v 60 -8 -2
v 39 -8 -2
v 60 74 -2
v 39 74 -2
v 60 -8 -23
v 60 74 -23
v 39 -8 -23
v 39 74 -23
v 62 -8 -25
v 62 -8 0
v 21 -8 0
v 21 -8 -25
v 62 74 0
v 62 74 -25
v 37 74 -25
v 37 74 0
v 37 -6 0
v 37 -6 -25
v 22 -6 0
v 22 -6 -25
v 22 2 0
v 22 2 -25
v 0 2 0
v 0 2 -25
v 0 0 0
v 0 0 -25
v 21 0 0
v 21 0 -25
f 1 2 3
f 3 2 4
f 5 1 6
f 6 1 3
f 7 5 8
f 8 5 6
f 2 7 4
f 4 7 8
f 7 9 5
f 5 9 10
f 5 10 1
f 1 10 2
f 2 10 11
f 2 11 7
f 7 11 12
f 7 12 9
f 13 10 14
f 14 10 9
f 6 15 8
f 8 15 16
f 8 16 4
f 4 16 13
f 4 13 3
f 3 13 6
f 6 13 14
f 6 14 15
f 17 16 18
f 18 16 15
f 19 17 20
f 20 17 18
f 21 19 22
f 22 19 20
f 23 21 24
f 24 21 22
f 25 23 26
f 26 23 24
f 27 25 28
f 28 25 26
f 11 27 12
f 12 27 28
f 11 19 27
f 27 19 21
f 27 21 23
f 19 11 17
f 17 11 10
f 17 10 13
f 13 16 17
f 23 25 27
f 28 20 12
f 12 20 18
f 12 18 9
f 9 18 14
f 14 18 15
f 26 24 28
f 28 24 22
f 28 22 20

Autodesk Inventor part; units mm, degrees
ref_plane "YZ Plane" through (0, 0, 0) normal (1, 0, 0) x (0, 1, 0)
ref_plane "XZ Plane" through (0, 0, 0) normal (0, 1, 0) x (-1, 0, 0)
ref_plane "XY Plane" through (0, 0, 0) normal (0, 0, 1) x (1, 0, 0)
sketch "Skizze4" plane through (0, 0, 0) normal (0, 0, 1) x (1, 0, 0)
  line L0 (0, 0) -> (0, 2)
  line L1 (0, 2) -> (22, 2)
  line L2 (22, 2) -> (22, -6)
  line L3 (22, -6) -> (37, -6)
  line L4 (37, -6) -> (37, 74)
  line L5 (37, 74) -> (62, 74)
  line L6 (62, 74) -> (62, -8)
  line L7 (62, 74) -> (144, 74) construction
  line L8 (62, -8) -> (21, -8)
  line L9 (21, -8) -> (21, 0)
  line L10 (21, 0) -> (0, 0)
  dimension "d2" = 2
  dimension "d3" = 22
  dimension "d4" = 8
  dimension "d5" = 15
  dimension "d6" = 80
  dimension "d7" = 25
  dimension "d8" = 82
  dimension "d9" = 90
  dimension "d10" = 41
extrude "Extrusion3" add sketch "Skizze4" against normal blind 25
sketch "Skizze7" plane through (37, 74, 0) normal (0, 1, 0) x (1, 0, 0)
  line L0 (2, 2) -> (23, 2)
  line L1 (23, 2) -> (23, 23)
  line L2 (23, 23) -> (2, 23)
  line L3 (2, 23) -> (2, 2)
  point P0 (-37, 0)
  dimension "d19" = 21
  dimension "d20" = 21
extrude "Extrusion4" cut sketch "Skizze7" against normal blind 100
properties part number "flexibler_standfuß_v0.2"
